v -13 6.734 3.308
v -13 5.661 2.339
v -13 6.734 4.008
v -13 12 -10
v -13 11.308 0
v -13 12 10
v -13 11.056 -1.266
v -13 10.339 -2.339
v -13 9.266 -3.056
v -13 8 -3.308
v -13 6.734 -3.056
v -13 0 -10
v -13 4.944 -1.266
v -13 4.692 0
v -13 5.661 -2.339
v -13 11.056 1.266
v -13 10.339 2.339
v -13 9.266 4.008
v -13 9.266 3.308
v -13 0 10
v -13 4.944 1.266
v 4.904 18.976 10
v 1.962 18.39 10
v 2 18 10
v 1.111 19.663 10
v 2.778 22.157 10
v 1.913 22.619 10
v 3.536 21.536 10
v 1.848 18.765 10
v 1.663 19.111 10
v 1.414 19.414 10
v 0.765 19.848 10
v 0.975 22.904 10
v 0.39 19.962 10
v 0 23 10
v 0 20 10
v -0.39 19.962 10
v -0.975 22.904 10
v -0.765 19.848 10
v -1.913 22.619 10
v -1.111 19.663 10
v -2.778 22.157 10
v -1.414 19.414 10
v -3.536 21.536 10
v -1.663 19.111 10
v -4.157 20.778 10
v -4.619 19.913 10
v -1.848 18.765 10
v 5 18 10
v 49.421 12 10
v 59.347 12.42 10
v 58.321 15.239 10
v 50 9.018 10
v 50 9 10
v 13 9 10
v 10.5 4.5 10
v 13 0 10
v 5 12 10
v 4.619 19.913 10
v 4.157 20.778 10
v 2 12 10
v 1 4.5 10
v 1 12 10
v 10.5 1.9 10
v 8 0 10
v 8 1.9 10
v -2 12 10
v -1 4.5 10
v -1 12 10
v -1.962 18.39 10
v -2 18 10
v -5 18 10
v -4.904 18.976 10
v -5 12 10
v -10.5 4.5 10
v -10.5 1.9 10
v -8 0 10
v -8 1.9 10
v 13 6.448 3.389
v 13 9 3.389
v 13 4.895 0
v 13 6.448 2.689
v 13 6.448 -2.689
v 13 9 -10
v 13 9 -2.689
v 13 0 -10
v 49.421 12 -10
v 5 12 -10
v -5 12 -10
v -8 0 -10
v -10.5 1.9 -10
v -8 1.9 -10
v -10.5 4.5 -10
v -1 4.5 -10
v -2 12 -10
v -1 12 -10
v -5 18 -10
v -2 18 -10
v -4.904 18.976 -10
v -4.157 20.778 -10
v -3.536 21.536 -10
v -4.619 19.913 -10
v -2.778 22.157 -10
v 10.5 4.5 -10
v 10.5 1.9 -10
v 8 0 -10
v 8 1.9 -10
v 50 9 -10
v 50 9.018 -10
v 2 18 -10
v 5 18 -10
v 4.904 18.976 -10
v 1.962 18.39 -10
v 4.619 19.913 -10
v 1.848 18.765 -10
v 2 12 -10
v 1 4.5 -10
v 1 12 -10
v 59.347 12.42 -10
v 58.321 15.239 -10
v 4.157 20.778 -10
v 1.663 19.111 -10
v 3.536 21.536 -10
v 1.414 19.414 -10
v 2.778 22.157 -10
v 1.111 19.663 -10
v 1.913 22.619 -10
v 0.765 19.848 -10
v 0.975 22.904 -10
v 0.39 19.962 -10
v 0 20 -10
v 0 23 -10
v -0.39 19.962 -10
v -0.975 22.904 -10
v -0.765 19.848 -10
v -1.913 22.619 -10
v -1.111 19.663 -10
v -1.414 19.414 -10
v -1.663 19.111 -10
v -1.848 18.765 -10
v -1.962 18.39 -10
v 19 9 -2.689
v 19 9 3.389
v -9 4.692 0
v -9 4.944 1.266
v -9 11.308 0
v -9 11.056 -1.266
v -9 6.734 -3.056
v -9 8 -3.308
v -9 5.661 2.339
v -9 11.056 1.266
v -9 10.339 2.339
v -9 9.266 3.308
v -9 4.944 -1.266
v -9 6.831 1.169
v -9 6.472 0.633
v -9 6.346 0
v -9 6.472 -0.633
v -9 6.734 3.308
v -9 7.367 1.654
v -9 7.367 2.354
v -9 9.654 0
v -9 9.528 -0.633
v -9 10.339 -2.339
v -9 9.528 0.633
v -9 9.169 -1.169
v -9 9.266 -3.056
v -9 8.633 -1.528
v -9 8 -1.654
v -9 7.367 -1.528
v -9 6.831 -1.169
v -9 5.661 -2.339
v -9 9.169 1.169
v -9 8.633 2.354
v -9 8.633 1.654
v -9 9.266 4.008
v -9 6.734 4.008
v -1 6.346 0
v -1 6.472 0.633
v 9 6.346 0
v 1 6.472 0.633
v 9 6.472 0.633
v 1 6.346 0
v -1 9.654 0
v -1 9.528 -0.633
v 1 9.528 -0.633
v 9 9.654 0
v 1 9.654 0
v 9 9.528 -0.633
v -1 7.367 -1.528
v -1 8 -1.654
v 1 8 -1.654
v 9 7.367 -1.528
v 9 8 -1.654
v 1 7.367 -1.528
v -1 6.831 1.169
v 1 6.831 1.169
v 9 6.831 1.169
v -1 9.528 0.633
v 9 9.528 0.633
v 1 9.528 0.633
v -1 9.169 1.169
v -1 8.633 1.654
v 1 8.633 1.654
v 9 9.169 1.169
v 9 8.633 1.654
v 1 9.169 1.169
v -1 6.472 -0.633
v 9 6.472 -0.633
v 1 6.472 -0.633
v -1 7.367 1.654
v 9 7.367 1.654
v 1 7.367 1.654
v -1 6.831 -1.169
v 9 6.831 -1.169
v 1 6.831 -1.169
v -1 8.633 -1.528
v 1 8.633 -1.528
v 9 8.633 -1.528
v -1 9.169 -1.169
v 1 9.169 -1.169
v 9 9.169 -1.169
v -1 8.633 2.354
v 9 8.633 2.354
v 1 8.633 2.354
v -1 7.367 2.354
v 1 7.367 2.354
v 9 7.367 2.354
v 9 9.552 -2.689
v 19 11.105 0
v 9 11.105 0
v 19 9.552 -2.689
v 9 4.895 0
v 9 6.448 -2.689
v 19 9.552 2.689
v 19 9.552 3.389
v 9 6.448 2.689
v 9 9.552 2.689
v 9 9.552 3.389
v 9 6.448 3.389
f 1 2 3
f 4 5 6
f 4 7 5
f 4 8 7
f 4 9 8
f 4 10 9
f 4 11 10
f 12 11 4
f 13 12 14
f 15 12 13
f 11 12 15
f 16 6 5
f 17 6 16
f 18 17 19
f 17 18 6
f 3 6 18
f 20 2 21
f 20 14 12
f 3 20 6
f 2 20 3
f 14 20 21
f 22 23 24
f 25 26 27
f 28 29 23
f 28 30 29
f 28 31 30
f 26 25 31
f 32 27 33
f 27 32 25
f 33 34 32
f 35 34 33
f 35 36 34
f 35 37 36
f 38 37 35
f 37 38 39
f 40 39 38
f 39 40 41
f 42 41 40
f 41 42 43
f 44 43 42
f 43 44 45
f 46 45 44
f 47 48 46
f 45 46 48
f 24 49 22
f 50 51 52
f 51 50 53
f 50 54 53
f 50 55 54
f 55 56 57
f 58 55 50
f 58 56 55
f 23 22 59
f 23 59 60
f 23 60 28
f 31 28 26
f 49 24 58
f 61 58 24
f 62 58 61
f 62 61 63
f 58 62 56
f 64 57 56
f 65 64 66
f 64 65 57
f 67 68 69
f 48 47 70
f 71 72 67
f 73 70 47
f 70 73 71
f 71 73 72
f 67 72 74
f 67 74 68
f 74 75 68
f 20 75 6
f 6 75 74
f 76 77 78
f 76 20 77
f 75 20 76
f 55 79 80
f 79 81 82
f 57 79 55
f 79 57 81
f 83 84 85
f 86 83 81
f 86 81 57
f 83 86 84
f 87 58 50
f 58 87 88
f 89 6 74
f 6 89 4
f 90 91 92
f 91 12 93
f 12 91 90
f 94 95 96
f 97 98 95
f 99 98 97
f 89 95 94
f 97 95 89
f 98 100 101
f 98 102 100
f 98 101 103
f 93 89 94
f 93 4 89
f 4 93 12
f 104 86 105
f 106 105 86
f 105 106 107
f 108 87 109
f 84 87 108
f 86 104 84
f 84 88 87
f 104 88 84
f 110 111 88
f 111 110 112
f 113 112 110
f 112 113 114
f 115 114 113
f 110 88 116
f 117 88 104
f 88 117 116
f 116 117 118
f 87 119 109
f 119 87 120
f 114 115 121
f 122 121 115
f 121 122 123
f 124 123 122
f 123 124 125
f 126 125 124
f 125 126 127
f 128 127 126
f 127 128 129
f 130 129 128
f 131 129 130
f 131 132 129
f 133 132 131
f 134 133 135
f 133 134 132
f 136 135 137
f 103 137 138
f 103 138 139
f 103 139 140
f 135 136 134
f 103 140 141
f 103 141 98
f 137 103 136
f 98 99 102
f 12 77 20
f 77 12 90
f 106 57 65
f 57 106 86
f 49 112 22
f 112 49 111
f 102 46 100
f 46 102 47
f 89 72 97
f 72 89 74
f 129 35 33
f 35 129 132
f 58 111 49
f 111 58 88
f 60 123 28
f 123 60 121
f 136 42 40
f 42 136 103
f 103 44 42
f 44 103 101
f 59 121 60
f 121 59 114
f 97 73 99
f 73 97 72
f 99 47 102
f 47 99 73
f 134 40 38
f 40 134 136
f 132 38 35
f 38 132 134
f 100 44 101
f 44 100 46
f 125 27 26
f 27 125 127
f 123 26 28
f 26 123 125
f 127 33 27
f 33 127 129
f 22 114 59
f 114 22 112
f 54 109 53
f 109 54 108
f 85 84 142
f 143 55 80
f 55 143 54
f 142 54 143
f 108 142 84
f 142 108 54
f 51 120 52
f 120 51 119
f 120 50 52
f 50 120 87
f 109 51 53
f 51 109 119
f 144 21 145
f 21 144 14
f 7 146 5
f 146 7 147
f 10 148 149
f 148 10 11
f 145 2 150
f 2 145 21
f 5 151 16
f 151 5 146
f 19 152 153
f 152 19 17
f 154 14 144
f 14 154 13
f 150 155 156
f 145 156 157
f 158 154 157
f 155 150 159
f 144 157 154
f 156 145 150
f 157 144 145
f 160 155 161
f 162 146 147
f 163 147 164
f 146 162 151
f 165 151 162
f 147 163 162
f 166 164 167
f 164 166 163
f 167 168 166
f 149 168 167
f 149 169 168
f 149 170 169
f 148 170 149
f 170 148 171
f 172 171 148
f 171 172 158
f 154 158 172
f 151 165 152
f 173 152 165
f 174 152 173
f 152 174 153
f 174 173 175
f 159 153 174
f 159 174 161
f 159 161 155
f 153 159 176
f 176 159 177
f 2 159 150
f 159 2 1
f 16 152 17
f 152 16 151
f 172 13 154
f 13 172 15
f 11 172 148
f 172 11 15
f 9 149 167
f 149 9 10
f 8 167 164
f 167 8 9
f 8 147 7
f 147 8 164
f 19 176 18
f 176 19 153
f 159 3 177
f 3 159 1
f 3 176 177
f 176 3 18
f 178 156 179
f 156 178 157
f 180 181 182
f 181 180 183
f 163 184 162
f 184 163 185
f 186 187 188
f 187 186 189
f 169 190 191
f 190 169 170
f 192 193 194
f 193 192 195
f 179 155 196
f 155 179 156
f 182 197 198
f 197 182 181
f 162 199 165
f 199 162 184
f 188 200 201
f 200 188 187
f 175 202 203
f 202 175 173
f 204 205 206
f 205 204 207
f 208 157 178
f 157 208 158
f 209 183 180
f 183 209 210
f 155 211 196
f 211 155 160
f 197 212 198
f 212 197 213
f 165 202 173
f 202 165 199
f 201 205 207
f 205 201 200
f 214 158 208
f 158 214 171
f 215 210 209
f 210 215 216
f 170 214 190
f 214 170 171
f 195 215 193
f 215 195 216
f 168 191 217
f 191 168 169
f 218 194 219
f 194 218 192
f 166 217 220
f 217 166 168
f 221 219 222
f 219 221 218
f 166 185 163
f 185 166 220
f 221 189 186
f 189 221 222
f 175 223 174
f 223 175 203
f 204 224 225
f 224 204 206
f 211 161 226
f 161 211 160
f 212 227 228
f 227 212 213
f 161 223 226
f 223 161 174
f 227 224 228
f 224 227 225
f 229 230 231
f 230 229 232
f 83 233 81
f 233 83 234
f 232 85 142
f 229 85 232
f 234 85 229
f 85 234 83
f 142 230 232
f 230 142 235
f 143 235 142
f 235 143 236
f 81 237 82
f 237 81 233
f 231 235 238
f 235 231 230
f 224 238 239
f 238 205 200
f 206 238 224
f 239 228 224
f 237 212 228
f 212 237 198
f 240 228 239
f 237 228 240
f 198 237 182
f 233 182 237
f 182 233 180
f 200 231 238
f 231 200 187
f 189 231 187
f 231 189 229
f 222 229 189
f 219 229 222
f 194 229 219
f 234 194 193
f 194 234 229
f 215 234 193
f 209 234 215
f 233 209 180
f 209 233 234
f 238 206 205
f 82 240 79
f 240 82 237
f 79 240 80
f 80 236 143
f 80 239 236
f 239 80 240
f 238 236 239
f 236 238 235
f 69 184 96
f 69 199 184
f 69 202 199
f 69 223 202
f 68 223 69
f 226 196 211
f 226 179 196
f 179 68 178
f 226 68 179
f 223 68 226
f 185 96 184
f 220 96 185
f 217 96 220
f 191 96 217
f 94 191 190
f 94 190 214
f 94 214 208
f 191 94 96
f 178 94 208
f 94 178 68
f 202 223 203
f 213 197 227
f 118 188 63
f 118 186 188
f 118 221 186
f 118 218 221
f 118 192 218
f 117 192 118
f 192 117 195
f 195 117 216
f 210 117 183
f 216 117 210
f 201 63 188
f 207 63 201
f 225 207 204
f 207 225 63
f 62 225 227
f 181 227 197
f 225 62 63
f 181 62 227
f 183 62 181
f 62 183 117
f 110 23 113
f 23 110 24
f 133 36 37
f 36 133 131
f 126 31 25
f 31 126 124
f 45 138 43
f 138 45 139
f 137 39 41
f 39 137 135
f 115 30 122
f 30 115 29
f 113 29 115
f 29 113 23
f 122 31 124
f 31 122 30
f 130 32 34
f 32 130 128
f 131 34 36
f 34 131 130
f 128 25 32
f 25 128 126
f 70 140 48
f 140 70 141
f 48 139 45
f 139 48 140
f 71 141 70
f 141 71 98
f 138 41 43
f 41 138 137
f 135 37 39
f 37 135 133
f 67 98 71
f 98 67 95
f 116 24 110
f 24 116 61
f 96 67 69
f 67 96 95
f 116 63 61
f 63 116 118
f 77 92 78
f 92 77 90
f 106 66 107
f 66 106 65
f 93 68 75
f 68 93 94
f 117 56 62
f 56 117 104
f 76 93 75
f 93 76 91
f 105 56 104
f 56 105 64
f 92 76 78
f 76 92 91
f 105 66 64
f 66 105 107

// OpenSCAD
use <../utilities.scad>;

roc=2;
d=0.05;
h=20;
pivot_y=18;
base_h=12;
base=[26,base_h,h];

$fn=32;
difference(){
    union(){
        translate([0,6,0]) cube(base,center=true);
        
        hull(){
            translate([0,pivot_y,0]) cylinder(r=roc+3,h=h,center=true);
            translate([0,d,0]) cube([roc*2+2*3,2*d,h],center=true);
        }
        
        translate([0,base_h-3,-h/2]) cube([50,3,h]);
        translate([50-d,base_h-3,-h/2]) rotate(20) cube([10,3,h]);
    }
    
    //cut-out for clip
    cube([2,pivot_y*2,999],center=true);
    translate([0,pivot_y,0]) cylinder(r=roc,h=999,center=true);
    translate([-roc,base_h,-999]) cube([roc*2,pivot_y-base_h,999*2]);
    
    translate([0,base_h-4,0]) rotate(90) pinch_y(3,nut_l=10,screw_l=base[0]/2,gap=[d,base[0]-12,d]);
    
    //rail
    cube([16,4.5*2,999],center=true);
    translate([0,4.5-1.3,0]) cube([21,2.6,999],center=true);
}
